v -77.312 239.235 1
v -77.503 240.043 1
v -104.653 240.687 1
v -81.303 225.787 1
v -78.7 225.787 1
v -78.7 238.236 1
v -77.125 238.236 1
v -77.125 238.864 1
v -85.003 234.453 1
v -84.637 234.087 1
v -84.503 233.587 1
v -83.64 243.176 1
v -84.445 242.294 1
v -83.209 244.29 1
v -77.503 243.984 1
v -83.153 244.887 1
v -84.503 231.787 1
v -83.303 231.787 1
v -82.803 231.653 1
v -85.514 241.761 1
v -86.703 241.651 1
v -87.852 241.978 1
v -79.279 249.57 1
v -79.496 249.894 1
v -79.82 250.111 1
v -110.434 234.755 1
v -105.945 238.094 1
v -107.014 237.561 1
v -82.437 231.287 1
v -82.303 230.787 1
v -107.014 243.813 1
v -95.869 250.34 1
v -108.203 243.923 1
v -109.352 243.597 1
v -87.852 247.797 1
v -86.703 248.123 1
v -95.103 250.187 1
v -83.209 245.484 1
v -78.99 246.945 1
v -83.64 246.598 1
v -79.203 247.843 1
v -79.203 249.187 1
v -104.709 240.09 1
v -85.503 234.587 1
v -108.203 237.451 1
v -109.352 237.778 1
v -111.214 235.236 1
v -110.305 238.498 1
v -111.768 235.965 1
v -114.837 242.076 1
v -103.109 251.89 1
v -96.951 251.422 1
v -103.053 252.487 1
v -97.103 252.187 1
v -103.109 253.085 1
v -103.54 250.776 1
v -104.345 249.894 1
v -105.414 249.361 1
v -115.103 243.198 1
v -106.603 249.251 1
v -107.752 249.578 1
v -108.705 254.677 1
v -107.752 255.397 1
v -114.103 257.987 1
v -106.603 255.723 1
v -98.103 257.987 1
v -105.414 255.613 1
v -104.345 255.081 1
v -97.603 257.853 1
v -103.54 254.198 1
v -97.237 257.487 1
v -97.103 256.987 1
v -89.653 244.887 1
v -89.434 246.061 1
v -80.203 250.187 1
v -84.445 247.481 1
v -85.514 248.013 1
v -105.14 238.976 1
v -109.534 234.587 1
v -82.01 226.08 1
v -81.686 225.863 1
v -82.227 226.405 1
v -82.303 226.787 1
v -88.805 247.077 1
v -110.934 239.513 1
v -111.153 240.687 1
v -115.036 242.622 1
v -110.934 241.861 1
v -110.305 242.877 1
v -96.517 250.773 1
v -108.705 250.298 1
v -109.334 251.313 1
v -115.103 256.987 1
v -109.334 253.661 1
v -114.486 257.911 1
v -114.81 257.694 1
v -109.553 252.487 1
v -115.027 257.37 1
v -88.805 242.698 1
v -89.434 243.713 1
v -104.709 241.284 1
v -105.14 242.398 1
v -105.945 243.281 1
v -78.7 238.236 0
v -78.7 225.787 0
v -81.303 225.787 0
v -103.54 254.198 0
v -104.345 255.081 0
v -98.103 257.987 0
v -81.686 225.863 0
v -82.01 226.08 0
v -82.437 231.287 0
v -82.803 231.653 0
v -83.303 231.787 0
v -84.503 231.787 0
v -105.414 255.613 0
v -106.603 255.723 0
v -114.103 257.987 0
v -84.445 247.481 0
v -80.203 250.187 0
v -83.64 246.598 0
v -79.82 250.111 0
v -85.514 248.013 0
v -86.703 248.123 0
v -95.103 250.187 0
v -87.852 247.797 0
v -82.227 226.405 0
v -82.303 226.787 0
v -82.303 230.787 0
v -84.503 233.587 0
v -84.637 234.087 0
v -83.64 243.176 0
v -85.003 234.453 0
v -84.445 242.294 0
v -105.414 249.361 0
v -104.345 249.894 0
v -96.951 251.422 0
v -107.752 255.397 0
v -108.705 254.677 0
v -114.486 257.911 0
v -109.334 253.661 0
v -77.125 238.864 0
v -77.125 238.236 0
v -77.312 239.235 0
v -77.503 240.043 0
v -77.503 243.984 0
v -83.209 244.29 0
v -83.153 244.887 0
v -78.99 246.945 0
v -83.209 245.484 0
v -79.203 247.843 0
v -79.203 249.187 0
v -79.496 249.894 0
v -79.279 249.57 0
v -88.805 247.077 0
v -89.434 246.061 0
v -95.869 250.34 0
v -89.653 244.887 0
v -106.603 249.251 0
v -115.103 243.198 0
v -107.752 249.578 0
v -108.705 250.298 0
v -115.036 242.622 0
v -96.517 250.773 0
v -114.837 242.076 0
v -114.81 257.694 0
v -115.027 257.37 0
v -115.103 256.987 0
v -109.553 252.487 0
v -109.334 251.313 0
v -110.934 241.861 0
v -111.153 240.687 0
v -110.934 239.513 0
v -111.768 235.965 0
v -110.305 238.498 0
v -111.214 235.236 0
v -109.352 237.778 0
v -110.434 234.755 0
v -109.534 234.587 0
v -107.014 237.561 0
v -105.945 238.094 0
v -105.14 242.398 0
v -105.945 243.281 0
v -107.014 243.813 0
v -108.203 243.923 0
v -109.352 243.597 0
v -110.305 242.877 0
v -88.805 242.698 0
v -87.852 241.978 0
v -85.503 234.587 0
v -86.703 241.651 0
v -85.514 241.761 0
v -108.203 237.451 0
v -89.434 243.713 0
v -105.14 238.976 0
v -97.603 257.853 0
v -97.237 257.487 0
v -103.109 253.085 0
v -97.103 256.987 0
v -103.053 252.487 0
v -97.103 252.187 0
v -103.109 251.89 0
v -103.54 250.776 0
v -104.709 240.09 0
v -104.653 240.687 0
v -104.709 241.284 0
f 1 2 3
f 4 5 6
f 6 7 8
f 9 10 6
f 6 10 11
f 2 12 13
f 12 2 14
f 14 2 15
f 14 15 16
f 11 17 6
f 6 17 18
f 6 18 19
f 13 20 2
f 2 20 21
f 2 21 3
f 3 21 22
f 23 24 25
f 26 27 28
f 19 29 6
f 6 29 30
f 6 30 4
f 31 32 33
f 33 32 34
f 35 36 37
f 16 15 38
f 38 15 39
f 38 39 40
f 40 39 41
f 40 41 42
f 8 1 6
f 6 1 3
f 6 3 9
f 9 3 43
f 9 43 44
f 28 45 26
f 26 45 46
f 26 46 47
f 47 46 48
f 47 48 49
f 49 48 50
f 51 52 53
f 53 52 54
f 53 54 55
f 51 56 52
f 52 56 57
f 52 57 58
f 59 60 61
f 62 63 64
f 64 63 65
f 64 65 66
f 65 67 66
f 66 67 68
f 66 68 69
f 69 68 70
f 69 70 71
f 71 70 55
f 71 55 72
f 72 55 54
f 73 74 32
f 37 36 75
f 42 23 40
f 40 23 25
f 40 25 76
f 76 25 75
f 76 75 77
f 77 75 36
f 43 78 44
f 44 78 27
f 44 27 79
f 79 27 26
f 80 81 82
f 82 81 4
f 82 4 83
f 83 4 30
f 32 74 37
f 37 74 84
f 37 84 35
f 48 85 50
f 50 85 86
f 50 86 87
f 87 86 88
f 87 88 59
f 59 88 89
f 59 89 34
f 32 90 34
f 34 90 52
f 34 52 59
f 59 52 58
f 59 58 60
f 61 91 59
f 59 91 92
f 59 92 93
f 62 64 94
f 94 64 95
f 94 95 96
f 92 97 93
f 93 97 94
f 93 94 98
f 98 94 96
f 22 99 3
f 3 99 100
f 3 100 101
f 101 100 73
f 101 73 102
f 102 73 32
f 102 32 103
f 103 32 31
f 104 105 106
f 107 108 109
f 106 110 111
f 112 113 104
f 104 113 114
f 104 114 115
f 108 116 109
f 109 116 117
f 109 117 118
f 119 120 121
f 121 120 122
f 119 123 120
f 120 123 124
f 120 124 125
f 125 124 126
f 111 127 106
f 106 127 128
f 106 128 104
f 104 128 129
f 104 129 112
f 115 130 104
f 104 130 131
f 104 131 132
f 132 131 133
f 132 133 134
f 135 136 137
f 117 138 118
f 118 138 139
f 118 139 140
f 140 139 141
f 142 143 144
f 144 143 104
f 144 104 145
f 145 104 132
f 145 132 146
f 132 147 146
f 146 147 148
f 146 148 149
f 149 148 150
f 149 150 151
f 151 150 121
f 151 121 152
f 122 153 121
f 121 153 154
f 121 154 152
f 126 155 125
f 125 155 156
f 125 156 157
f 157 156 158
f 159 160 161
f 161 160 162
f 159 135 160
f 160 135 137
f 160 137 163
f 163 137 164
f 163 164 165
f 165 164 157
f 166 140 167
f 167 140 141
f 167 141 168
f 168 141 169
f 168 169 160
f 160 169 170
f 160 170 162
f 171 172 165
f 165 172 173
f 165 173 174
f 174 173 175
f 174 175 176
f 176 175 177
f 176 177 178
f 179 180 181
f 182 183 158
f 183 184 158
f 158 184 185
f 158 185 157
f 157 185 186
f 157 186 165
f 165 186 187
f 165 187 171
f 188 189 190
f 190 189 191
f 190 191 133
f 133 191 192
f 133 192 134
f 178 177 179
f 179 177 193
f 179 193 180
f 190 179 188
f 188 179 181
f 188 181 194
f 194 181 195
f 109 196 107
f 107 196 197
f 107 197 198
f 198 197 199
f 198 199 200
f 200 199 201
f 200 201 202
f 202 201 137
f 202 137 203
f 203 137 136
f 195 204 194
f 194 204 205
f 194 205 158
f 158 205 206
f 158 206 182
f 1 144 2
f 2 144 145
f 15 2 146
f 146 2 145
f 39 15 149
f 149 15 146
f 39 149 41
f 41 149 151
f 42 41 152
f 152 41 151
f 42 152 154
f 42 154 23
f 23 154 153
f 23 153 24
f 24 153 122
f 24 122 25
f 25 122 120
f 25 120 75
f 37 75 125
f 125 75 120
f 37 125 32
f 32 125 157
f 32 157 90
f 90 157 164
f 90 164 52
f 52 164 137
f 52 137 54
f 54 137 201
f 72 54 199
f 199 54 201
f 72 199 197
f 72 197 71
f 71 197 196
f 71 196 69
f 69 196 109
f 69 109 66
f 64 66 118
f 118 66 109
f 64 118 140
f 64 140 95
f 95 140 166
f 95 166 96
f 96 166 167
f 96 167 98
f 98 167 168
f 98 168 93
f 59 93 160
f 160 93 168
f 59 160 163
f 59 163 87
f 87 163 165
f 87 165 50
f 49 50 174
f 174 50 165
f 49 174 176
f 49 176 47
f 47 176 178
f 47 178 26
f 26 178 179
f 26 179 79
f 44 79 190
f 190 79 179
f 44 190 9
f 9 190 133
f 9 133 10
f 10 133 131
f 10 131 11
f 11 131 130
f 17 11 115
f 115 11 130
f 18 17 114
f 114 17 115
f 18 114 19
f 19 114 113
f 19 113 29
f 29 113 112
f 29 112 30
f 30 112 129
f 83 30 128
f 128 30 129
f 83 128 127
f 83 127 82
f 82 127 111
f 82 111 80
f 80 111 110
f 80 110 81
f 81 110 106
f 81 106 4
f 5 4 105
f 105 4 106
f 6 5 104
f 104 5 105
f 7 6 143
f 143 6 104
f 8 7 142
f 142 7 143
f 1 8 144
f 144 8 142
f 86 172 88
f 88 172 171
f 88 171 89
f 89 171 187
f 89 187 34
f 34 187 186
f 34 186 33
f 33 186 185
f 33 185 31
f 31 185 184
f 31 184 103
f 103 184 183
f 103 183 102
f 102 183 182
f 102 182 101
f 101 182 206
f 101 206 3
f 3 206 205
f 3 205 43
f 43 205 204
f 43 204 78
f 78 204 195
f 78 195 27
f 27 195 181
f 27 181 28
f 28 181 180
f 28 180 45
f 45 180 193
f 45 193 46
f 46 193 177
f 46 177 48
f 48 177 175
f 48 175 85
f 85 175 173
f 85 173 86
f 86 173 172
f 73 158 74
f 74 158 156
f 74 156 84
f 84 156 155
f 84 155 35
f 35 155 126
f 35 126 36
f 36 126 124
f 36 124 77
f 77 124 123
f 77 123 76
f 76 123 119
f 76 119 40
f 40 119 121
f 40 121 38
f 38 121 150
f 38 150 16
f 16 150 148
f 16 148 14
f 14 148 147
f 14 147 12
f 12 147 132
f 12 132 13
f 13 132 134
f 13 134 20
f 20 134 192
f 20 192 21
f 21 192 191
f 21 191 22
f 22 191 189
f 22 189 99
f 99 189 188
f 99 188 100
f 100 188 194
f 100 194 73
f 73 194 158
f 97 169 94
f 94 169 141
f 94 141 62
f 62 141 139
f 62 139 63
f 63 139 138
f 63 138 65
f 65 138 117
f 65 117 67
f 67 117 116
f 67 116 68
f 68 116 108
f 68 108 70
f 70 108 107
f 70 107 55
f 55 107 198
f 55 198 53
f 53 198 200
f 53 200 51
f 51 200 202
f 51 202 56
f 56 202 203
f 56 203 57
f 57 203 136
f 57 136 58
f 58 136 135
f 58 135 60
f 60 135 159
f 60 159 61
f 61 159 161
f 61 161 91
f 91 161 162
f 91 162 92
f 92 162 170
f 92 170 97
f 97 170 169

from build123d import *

# Parameters (mm, degrees)
SKETCH1_R           = 3.25
BOSS_EXTRUDE1_DEPTH = 1


with BuildPart() as part:
    # Sketch1 → Boss-Extrude1 (new body)
    with BuildSketch(Plane.XY):
        with BuildLine():
            Line((-77.503167437, 240.042852563), (-77.503167437, 243.984122493))
            Line((-77.503167437, 243.984122493), (-78.99040148, 246.945192005))
            ThreePointArc((-78.99040148, 246.945192005), (-79.149249152, 247.381586959), (-79.203167437, 247.842852563))
            Line((-79.203167437, 247.842852563), (-79.203167437, 249.187318466))
            ThreePointArc((-79.203167437, 249.187318466), (-79.496060656, 249.894425247), (-80.203167437, 250.187318466))
            Line((-80.203167437, 250.187318466), (-95.103167437, 250.187318466))
            ThreePointArc((-95.103167437, 250.187318466), (-96.517380999, 250.773104903), (-97.103167437, 252.187318466))
            Line((-97.103167437, 252.187318466), (-97.103167437, 256.987318466))
            ThreePointArc((-97.103167437, 256.987318466), (-97.396060656, 257.694425247), (-98.103167437, 257.987318466))
            Line((-98.103167437, 257.987318466), (-114.103167437, 257.987318466))
            ThreePointArc((-114.103167437, 257.987318466), (-114.810274218, 257.694425247), (-115.103167437, 256.987318466))
            Line((-115.103167437, 256.987318466), (-115.103167437, 243.19838666))
            ThreePointArc((-115.103167437, 243.19838666), (-115.035769581, 242.621804655), (-114.83720999, 242.076310963))
            Line((-114.83720999, 242.076310963), (-111.767849876, 235.965242768))
            ThreePointArc((-111.767849876, 235.965242768), (-110.846211749, 234.959503948), (-109.533807323, 234.587318466))
            Line((-109.533807323, 234.587318466), (-85.503167437, 234.587318466))
            ThreePointArc((-85.503167437, 234.587318466), (-84.796060656, 234.294425247), (-84.503167437, 233.587318466))
            Line((-84.503167437, 233.587318466), (-84.503167437, 231.787318466))
            Line((-84.503167437, 231.787318466), (-83.303167437, 231.787318466))
            ThreePointArc((-83.303167437, 231.787318466), (-82.596060656, 231.494425247), (-82.303167437, 230.787318466))
            Line((-82.303167437, 230.787318466), (-82.303167437, 226.787318466))
            ThreePointArc((-82.303167437, 226.787318466), (-82.010274218, 226.080211684), (-81.303167437, 225.787318466))
            Line((-81.303167437, 225.787318466), (-78.7, 225.787318466))
            Line((-78.7, 225.787318466), (-78.7, 238.236297682))
            Line((-78.7, 238.236297682), (-77.125227291, 238.236297682))
            Line((-77.125227291, 238.236297682), (-77.125227291, 238.863736239))
            Line((-77.125227291, 238.863736239), (-77.311678075, 239.234958061))
            ThreePointArc((-77.311678075, 239.234958061), (-77.454640981, 239.627713519), (-77.503167437, 240.042852563))
        make_face()
        with Locations((-107.903167437, 240.687318466)):
            Circle(SKETCH1_R, mode=Mode.SUBTRACT)
        with Locations((-86.403167437, 244.887318466)):
            Circle(SKETCH1_R, mode=Mode.SUBTRACT)
        with Locations((-106.303167437, 252.487318466)):
            Circle(SKETCH1_R, mode=Mode.SUBTRACT)
    extrude(amount=BOSS_EXTRUDE1_DEPTH)


solid = part.part
